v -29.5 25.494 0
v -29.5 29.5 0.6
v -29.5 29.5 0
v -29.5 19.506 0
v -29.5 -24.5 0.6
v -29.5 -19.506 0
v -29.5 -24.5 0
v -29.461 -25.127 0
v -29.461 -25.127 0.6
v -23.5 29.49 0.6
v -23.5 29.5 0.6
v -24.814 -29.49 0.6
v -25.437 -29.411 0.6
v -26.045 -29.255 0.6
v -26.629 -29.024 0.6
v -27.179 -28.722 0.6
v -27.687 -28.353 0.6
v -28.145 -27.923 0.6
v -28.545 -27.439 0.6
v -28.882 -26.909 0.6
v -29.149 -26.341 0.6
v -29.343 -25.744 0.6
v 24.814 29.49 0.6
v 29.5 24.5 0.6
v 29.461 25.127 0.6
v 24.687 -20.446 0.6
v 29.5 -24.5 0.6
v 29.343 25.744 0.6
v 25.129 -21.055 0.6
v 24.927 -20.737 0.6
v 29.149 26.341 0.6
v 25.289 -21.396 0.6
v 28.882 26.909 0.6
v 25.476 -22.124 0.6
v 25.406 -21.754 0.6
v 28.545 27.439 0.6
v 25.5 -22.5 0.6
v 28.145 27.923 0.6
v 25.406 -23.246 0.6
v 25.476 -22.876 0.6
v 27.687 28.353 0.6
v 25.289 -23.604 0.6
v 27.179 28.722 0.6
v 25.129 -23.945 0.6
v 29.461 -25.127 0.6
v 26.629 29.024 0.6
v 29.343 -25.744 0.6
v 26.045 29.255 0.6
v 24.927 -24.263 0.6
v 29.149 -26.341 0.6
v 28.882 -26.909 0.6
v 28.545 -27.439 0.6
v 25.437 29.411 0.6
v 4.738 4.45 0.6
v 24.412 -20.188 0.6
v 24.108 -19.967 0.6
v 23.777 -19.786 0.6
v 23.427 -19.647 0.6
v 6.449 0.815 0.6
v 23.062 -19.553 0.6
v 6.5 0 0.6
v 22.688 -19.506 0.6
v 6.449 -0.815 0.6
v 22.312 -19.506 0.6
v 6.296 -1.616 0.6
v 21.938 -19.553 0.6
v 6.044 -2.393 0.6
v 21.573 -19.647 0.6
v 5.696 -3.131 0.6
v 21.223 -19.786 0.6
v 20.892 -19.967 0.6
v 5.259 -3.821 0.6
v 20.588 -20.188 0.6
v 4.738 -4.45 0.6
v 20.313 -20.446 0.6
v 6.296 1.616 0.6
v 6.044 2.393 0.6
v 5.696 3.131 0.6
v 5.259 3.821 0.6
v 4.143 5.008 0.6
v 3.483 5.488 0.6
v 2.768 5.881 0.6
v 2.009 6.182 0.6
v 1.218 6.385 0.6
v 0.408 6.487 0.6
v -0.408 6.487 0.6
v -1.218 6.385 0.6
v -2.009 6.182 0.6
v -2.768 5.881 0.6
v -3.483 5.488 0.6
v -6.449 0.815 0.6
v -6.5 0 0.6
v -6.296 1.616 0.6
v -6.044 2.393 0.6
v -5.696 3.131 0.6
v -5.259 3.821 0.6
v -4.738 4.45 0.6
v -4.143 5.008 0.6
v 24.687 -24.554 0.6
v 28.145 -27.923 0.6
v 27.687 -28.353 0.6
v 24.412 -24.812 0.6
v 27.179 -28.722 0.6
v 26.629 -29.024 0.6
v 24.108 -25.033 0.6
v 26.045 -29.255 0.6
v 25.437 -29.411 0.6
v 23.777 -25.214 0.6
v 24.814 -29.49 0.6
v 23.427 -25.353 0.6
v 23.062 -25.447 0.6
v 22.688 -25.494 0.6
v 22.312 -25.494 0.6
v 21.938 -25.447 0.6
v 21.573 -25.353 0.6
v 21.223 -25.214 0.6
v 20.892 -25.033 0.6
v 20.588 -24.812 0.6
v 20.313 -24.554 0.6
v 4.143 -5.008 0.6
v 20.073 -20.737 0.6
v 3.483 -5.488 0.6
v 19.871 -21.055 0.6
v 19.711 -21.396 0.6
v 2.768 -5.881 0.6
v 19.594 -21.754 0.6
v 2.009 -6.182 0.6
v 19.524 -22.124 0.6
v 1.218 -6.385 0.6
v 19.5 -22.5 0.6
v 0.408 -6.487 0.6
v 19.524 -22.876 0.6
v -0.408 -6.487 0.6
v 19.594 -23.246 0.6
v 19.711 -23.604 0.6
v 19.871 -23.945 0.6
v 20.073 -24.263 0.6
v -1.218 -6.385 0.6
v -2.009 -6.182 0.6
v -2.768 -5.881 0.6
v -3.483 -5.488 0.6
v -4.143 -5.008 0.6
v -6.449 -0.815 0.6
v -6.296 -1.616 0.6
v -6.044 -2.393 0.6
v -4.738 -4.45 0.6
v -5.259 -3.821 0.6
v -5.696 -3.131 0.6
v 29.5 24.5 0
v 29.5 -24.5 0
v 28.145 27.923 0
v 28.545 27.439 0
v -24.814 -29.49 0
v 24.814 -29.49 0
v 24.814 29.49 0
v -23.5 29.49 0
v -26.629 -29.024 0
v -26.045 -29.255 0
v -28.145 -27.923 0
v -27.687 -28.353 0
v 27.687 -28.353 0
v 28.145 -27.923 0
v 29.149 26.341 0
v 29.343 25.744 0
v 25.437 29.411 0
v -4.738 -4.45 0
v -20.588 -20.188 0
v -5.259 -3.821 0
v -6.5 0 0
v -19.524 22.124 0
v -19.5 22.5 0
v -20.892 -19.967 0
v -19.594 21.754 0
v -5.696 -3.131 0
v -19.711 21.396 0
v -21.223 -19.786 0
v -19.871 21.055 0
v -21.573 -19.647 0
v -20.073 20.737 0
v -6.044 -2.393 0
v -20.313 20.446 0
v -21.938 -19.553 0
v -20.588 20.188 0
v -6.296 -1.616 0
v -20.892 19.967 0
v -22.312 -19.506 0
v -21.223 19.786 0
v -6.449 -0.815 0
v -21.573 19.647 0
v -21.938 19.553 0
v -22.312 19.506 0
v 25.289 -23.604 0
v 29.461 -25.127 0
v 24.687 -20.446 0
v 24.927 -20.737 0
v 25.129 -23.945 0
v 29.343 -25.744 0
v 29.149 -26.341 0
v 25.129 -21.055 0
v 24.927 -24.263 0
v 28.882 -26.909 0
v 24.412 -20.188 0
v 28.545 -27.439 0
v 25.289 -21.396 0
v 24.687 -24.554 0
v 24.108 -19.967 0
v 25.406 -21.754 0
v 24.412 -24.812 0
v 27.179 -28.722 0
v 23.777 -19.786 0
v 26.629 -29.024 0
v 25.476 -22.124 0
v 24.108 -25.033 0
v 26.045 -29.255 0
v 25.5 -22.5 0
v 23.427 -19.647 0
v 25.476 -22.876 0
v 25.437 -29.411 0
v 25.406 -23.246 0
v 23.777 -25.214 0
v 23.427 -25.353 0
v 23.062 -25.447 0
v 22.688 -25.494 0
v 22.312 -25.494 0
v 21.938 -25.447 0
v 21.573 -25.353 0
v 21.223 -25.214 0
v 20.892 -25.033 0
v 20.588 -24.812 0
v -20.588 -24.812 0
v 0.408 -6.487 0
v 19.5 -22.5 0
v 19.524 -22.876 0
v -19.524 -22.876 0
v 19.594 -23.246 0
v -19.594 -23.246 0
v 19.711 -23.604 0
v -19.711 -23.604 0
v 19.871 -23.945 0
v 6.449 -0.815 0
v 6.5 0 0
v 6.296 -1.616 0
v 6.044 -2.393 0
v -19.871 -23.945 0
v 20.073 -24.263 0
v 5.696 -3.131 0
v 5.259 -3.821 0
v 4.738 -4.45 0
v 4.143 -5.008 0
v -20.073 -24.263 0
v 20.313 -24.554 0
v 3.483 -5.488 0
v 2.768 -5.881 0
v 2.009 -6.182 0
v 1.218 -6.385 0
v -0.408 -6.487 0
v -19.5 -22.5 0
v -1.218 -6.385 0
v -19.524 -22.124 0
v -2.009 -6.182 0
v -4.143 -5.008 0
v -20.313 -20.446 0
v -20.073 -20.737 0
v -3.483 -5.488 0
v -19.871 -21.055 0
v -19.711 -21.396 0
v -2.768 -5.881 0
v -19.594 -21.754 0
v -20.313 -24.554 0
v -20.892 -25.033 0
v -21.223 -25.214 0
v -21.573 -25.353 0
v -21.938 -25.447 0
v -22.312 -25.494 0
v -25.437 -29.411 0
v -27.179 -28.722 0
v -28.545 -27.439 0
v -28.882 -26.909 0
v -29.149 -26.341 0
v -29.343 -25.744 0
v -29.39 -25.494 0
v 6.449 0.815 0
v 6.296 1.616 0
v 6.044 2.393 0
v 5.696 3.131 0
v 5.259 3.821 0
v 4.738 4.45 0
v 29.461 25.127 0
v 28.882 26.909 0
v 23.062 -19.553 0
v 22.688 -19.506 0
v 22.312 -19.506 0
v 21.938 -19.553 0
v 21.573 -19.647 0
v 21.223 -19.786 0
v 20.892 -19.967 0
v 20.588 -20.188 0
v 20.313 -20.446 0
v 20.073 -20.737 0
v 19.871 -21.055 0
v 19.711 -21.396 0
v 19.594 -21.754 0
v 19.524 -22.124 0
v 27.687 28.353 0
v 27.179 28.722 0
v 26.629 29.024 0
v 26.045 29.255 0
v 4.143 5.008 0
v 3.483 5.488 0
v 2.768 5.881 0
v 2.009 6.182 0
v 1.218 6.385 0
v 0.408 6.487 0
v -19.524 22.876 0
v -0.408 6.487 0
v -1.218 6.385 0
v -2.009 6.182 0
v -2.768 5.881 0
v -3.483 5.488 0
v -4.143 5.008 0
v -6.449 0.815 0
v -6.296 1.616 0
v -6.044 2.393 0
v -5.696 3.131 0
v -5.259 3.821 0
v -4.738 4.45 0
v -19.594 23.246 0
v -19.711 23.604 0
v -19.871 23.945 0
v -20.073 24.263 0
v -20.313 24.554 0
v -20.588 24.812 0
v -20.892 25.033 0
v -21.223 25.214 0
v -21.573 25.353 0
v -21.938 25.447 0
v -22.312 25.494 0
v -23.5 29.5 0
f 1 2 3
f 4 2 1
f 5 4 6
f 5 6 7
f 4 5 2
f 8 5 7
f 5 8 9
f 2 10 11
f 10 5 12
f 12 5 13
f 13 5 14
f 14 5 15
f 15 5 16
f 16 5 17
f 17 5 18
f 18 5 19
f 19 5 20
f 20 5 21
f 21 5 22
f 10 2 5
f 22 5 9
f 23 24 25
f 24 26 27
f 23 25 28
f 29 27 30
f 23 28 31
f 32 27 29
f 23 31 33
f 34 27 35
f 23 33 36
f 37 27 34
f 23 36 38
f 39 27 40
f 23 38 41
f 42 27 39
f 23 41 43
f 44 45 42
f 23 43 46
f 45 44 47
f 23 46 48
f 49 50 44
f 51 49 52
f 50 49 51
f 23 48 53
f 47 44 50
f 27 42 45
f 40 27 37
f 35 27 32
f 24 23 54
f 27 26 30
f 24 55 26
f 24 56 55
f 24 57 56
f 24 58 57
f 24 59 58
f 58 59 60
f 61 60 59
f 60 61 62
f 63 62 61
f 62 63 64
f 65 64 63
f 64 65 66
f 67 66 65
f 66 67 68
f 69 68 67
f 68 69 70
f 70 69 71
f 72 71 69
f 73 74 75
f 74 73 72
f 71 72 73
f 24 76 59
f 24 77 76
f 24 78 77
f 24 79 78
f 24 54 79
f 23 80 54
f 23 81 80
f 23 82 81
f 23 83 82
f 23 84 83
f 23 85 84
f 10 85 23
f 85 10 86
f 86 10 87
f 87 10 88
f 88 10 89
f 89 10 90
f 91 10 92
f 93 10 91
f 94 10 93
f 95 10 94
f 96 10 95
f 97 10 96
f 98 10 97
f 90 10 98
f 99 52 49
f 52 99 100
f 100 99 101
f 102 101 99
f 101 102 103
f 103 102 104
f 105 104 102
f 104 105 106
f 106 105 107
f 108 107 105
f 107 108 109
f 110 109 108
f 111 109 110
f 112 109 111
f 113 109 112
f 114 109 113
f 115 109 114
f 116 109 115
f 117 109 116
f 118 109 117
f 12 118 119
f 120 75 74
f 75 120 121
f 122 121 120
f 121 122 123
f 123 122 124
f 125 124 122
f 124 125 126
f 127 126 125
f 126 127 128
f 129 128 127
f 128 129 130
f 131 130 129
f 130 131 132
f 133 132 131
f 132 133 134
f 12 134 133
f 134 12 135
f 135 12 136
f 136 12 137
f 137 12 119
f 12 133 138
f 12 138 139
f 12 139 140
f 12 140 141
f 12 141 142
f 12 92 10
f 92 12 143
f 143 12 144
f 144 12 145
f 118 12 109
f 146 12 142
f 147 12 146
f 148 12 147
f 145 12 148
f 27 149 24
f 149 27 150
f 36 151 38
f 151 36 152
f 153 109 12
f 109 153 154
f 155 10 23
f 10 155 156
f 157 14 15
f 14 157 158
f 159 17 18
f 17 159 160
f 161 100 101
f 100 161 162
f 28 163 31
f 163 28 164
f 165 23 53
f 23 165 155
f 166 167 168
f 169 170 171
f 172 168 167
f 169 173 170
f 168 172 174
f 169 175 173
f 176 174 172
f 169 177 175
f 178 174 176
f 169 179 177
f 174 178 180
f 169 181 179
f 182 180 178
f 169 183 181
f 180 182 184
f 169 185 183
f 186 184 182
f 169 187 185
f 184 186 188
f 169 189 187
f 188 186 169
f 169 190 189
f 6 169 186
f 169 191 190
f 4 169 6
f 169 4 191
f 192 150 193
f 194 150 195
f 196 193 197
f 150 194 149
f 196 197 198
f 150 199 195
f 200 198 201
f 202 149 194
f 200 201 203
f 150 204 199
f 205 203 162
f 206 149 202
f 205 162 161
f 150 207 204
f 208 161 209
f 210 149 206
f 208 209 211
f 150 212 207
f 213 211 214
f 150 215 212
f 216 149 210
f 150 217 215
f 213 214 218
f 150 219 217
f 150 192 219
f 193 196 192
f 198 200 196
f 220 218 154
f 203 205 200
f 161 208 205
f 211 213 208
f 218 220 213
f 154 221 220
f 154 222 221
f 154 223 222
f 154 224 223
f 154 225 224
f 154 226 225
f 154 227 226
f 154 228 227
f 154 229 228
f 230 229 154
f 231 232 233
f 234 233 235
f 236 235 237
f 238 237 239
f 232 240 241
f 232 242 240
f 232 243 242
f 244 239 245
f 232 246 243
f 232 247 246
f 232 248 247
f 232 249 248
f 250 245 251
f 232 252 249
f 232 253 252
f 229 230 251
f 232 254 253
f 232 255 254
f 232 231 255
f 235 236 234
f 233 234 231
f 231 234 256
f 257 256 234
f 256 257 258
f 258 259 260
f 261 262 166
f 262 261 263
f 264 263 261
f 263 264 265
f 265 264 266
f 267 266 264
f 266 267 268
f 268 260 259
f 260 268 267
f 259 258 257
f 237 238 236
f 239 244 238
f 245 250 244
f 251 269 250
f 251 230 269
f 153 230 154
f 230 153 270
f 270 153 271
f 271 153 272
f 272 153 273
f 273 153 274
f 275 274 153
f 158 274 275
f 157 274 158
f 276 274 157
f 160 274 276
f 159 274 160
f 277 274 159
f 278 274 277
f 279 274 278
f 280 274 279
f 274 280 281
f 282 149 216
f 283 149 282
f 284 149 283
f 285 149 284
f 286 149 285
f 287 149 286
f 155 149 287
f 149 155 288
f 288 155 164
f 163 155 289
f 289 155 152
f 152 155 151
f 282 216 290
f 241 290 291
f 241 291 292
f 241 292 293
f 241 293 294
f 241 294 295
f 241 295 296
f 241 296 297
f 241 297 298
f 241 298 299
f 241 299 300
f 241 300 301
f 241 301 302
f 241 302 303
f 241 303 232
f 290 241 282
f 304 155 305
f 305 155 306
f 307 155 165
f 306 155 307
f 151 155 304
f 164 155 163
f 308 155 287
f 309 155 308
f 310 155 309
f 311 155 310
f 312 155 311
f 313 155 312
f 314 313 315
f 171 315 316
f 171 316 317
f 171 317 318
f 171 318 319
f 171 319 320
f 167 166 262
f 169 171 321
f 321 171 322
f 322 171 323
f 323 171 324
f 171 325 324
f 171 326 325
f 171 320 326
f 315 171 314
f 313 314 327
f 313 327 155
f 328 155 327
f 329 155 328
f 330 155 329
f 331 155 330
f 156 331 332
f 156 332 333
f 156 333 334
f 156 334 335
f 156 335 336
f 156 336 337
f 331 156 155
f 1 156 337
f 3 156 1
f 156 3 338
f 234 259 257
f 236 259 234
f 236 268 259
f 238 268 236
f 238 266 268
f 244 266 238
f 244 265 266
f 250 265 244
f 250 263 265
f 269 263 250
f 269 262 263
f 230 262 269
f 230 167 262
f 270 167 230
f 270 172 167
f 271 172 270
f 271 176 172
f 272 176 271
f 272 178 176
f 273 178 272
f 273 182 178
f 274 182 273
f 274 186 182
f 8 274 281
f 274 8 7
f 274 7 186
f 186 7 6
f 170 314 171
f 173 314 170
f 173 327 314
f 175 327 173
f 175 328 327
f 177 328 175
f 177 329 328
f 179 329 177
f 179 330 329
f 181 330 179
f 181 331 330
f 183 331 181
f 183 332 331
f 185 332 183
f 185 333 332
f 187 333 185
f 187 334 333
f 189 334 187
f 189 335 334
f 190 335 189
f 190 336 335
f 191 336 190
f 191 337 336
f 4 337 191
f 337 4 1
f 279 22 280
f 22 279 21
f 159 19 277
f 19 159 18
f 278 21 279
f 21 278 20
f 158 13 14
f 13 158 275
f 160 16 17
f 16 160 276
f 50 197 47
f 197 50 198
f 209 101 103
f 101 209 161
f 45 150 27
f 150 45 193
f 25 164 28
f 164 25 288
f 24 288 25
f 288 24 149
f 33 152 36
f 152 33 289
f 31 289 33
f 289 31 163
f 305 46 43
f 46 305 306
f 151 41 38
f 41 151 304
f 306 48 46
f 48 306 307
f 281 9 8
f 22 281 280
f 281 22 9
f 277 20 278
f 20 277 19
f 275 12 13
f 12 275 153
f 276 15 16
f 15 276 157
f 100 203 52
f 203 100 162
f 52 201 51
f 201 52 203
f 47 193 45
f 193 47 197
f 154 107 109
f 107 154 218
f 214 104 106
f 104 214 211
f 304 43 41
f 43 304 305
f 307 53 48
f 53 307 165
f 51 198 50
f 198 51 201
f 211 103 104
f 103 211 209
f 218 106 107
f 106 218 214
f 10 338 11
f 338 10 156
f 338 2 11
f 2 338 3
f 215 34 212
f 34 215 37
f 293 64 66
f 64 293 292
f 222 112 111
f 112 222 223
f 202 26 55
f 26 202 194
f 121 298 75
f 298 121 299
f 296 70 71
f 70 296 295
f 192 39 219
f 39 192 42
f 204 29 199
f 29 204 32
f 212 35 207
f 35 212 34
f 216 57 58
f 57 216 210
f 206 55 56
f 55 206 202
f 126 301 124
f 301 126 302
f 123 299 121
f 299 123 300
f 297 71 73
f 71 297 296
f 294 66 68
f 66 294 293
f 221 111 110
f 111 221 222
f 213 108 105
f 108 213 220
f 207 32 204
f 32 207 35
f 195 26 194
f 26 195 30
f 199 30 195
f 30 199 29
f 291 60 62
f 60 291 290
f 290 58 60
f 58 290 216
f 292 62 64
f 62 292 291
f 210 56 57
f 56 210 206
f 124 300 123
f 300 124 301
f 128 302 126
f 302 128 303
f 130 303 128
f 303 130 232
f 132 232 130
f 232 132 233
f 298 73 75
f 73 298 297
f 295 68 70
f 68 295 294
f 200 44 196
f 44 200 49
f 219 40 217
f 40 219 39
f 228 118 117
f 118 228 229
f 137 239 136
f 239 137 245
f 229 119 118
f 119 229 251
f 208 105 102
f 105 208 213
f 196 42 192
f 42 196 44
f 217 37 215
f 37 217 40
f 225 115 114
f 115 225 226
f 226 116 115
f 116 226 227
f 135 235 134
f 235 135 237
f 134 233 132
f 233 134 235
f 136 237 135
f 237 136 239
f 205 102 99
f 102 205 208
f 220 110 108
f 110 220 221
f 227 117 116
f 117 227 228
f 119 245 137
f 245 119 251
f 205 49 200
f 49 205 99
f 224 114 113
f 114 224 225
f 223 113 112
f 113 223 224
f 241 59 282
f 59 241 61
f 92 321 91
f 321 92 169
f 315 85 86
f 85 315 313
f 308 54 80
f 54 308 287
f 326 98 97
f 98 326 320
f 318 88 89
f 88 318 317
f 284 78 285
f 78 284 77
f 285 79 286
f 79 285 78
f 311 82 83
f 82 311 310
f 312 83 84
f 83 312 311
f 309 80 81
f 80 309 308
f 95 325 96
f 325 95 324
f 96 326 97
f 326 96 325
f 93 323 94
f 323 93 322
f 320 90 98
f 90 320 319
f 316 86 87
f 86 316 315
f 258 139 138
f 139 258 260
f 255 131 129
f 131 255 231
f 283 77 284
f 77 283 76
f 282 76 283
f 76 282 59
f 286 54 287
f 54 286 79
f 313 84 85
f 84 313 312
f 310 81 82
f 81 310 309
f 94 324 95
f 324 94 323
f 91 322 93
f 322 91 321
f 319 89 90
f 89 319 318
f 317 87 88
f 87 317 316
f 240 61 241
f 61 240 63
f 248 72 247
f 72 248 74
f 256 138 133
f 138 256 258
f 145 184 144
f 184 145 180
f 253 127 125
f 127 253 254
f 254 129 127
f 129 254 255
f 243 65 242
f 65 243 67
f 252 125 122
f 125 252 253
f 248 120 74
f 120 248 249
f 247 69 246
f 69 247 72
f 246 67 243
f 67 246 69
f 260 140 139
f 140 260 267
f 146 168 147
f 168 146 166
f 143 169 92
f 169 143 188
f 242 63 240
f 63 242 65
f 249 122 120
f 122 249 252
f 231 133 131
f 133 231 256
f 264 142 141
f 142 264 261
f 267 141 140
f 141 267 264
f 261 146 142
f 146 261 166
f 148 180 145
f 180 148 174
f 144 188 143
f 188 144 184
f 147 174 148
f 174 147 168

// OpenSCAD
$fn = 50;


difference() {
	union() {
		hull() {
			translate(v = [-24.5000000000, 24.5000000000, 0]) {
				cylinder(h = 0.6000000000, r = 5);
			}
			translate(v = [24.5000000000, 24.5000000000, 0]) {
				cylinder(h = 0.6000000000, r = 5);
			}
			translate(v = [-24.5000000000, -24.5000000000, 0]) {
				cylinder(h = 0.6000000000, r = 5);
			}
			translate(v = [24.5000000000, -24.5000000000, 0]) {
				cylinder(h = 0.6000000000, r = 5);
			}
		}
		translate(v = [-29.5000000000, 23.5000000000, 0]) {
			cube(size = [6, 6, 0.6000000000]);
		}
	}
	union() {
		translate(v = [-30.0000000000, -22.5000000000, -250.0000000000]) {
			rotate(a = [0, 0, 0]) {
				difference() {
					union() {
						hull() {
							translate(v = [7.5000000000, 0, 0]) {
								cylinder(h = 250, r = 3.0000000000, r1 = 3.0000000000, r2 = 3.0000000000);
							}
							translate(v = [-7.5000000000, 0, 0]) {
								cylinder(h = 250, r = 3.0000000000, r1 = 3.0000000000, r2 = 3.0000000000);
							}
						}
					}
					union();
				}
			}
		}
		translate(v = [-30.0000000000, 22.5000000000, -250.0000000000]) {
			rotate(a = [0, 0, 0]) {
				difference() {
					union() {
						hull() {
							translate(v = [7.5000000000, 0, 0]) {
								cylinder(h = 250, r = 3.0000000000, r1 = 3.0000000000, r2 = 3.0000000000);
							}
							translate(v = [-7.5000000000, 0, 0]) {
								cylinder(h = 250, r = 3.0000000000, r1 = 3.0000000000, r2 = 3.0000000000);
							}
						}
					}
					union();
				}
			}
		}
		translate(v = [22.5000000000, -22.5000000000, -50.0000000000]) {
			cylinder(h = 100, r = 3.0000000000);
		}
		cylinder(h = 0.6000000000, r = 6.5000000000);
	}
}
